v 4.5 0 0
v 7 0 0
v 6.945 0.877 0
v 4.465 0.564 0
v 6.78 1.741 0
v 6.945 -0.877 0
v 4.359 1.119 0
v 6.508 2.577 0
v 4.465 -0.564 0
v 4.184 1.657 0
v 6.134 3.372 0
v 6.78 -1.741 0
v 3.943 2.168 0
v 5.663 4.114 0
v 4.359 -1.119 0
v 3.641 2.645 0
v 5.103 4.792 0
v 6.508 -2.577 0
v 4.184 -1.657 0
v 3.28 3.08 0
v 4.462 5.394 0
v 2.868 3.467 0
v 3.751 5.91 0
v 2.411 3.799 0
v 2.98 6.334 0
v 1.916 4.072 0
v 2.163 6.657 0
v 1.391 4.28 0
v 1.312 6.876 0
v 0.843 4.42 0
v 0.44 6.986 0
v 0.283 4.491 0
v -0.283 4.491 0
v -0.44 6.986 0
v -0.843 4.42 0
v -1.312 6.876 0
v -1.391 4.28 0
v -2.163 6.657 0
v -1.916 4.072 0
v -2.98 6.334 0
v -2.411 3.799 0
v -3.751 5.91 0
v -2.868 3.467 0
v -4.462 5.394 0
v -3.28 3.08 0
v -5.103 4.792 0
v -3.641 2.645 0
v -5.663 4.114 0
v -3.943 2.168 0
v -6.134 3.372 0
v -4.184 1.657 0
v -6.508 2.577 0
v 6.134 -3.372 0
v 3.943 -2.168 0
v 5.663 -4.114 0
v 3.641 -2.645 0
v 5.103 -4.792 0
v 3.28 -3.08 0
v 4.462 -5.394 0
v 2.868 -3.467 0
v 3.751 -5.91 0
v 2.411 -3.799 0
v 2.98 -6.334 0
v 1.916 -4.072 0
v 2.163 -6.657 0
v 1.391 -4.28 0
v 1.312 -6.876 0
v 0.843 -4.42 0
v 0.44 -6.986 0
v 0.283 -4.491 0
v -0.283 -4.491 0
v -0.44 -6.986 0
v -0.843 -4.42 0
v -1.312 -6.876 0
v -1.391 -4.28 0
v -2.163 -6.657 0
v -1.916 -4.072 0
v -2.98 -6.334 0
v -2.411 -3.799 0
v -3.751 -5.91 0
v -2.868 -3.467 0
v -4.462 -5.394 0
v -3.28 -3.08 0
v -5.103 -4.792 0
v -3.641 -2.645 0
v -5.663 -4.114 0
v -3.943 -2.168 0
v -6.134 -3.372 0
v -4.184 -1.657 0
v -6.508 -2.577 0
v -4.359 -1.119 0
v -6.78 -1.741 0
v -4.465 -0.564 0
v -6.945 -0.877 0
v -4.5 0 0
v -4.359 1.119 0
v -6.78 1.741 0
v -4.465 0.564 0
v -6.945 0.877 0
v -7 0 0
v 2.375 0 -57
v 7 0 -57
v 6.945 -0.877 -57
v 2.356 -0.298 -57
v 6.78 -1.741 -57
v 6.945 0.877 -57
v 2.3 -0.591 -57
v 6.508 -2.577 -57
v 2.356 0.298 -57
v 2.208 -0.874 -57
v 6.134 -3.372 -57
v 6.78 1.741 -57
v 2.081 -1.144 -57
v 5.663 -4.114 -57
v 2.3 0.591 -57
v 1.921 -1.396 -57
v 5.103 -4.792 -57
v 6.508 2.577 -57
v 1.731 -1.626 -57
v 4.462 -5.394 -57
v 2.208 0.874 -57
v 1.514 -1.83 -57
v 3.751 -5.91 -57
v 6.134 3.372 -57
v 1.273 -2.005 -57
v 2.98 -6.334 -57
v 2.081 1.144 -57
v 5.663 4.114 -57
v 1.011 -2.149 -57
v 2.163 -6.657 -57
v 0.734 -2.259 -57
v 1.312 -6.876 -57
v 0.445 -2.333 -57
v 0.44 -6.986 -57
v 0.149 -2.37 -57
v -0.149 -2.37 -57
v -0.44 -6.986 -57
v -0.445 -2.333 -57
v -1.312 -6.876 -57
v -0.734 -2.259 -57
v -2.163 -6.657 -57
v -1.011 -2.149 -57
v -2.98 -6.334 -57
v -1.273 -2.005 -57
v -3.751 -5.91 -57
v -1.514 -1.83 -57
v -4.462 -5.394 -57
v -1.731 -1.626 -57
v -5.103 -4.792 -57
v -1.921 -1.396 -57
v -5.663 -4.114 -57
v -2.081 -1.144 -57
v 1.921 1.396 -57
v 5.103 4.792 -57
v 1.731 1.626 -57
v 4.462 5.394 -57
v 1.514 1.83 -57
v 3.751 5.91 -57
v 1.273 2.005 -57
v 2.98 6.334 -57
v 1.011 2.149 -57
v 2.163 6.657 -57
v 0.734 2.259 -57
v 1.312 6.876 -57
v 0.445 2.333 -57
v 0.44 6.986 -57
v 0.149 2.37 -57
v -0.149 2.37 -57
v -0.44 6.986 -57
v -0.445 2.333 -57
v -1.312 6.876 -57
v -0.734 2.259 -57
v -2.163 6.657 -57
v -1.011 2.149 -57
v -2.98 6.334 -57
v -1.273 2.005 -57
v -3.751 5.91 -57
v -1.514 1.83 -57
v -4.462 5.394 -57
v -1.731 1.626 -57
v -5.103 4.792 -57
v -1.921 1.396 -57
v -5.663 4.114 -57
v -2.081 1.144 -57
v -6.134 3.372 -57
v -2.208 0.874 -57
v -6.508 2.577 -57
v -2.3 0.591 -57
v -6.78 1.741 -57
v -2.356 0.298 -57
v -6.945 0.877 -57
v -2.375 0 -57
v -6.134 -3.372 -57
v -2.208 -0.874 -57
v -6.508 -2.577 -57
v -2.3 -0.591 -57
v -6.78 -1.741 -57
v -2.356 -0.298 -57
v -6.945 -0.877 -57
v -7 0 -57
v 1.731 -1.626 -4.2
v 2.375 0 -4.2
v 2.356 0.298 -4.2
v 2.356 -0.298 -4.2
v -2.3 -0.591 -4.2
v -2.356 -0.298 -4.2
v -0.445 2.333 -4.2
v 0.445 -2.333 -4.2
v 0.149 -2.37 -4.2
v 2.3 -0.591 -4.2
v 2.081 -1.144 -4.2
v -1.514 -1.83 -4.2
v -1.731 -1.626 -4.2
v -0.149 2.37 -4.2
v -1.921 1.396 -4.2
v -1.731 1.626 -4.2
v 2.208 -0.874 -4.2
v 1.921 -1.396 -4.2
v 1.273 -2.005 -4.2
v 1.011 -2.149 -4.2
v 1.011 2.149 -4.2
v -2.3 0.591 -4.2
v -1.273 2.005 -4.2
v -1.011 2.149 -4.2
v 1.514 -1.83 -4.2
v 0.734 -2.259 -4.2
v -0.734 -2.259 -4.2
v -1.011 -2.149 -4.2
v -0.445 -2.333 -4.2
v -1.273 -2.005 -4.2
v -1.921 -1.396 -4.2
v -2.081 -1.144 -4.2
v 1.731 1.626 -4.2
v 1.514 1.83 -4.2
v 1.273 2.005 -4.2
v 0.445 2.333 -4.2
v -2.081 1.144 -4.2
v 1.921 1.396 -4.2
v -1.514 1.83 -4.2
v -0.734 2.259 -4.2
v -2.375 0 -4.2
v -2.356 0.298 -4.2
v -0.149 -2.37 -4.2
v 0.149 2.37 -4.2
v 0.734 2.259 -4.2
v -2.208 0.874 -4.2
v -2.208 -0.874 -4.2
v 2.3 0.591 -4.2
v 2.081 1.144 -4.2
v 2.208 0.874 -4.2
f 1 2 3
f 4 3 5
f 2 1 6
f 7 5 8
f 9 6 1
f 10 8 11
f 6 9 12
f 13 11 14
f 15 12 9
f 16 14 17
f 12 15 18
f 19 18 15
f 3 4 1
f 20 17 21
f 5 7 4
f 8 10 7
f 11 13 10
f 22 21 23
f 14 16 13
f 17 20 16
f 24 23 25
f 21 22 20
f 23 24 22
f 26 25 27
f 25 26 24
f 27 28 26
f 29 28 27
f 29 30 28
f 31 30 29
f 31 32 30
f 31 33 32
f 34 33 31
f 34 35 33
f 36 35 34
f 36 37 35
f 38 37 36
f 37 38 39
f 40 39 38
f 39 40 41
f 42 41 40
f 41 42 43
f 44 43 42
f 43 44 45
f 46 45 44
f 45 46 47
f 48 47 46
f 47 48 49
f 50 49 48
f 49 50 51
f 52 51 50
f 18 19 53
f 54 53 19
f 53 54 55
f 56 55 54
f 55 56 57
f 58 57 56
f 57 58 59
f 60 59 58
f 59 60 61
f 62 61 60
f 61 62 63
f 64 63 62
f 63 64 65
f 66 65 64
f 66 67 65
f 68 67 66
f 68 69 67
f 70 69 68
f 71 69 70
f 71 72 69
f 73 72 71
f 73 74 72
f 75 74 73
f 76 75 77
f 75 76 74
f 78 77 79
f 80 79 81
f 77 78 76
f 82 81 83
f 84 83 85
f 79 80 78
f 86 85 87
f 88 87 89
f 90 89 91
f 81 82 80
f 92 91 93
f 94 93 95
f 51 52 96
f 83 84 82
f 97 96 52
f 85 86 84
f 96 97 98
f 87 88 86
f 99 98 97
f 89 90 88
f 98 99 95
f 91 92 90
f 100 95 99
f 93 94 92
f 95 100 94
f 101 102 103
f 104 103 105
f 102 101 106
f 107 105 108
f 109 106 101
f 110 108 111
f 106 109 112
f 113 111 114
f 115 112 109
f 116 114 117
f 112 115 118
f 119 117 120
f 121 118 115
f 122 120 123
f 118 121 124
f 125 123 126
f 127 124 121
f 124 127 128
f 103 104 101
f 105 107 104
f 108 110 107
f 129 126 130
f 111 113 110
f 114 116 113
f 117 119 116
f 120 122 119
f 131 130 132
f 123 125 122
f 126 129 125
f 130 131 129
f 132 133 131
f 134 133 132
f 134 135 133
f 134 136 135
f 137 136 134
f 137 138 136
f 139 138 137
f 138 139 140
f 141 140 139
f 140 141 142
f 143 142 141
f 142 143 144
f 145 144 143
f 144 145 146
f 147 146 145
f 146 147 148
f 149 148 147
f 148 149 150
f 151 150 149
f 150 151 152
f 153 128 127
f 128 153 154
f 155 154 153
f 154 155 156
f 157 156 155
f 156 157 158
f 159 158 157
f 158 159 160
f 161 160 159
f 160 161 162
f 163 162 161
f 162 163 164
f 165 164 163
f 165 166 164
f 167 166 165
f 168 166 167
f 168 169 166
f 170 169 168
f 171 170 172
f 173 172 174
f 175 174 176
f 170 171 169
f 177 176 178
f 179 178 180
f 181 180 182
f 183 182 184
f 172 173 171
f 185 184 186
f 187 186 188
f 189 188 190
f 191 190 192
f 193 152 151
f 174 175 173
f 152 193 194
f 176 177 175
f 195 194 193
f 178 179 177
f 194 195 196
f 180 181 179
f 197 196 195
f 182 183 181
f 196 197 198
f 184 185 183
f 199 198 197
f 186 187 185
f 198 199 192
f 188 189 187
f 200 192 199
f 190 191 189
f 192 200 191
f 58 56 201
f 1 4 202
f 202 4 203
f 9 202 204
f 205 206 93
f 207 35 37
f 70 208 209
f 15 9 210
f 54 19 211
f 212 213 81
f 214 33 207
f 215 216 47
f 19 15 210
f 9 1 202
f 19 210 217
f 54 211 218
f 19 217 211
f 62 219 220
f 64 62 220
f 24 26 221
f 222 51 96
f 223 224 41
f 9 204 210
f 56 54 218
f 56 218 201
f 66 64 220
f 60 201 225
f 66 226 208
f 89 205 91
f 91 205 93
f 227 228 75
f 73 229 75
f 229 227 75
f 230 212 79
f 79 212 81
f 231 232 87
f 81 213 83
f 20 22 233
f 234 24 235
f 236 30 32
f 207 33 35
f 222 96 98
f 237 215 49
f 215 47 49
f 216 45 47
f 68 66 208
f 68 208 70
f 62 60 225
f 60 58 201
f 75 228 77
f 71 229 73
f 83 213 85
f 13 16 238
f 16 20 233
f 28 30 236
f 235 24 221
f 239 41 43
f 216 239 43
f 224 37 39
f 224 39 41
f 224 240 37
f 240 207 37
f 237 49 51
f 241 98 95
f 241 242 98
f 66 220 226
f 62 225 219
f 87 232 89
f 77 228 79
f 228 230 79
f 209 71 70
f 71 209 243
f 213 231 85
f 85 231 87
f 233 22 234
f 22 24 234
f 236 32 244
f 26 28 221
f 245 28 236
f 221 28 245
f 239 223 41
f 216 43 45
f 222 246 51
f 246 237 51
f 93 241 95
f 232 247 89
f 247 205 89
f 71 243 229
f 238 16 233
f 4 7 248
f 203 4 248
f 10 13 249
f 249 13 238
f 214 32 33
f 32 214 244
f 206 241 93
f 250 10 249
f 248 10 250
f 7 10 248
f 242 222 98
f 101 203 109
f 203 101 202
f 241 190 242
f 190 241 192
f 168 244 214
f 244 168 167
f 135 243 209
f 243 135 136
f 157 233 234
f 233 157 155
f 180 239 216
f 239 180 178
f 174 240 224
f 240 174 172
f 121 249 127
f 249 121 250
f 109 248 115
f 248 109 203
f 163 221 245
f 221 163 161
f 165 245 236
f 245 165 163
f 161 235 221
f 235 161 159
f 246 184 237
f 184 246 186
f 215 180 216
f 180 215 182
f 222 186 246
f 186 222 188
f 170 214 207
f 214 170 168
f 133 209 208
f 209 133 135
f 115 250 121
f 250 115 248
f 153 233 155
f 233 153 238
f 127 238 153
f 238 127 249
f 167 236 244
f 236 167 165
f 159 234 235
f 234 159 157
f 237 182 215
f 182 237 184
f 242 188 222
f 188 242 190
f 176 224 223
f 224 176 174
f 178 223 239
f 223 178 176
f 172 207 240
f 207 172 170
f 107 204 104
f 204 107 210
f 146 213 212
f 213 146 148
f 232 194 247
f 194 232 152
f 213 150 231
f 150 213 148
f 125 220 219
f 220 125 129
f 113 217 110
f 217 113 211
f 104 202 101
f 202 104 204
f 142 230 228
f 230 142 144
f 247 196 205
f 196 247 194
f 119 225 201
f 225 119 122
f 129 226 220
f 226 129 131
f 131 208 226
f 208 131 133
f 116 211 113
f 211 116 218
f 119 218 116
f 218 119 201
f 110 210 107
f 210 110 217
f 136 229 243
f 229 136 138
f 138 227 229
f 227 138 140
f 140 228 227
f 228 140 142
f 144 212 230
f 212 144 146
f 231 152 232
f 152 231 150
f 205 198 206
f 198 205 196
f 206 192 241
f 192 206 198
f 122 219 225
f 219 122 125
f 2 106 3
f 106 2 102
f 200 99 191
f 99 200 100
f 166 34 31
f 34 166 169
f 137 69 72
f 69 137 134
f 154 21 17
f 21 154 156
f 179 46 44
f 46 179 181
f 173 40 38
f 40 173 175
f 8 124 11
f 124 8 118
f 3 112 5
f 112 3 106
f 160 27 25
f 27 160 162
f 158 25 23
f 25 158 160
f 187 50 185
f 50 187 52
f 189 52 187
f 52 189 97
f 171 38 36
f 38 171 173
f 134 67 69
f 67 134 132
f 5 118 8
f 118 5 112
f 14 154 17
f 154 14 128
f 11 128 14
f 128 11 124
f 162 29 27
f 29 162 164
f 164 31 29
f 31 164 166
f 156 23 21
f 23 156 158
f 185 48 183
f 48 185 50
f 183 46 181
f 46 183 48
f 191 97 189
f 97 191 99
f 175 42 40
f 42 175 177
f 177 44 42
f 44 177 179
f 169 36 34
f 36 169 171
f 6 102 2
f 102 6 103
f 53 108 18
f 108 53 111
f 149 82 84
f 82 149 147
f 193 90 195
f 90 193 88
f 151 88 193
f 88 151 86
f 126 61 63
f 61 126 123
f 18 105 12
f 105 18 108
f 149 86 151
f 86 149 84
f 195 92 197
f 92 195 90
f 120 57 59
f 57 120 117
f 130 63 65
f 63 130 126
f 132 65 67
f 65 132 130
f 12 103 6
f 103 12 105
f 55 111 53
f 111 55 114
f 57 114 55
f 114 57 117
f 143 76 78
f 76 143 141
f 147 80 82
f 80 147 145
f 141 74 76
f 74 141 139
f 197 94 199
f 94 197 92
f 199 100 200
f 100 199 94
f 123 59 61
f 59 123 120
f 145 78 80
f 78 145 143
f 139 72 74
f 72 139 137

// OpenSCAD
$fn = 50;


difference() {
	union() {
		translate(v = [0, 0, -57.0000000000]) {
			cylinder(h = 57, r = 7.0000000000);
		}
	}
	union() {
		translate(v = [0, 0, 0]) {
			rotate(a = [0, 0, 0]) {
				difference() {
					union() {
						#translate(v = [0, 0, -57.0000000000]) {
							cylinder(h = 57, r = 2.2500000000);
						}
						#translate(v = [0, 0, -4.2000000000]) {
							cylinder(h = 4.2000000000, r = 7.0000000000, r1 = 2.3750000000, r2 = 4.5000000000);
						}
						#translate(v = [0, 0, -57.0000000000]) {
							cylinder(h = 57, r = 2.3750000000);
						}
						#translate(v = [0, 0, -57.0000000000]) {
							cylinder(h = 57, r = 2.2500000000);
						}
					}
					union();
				}
			}
		}
	}
}
